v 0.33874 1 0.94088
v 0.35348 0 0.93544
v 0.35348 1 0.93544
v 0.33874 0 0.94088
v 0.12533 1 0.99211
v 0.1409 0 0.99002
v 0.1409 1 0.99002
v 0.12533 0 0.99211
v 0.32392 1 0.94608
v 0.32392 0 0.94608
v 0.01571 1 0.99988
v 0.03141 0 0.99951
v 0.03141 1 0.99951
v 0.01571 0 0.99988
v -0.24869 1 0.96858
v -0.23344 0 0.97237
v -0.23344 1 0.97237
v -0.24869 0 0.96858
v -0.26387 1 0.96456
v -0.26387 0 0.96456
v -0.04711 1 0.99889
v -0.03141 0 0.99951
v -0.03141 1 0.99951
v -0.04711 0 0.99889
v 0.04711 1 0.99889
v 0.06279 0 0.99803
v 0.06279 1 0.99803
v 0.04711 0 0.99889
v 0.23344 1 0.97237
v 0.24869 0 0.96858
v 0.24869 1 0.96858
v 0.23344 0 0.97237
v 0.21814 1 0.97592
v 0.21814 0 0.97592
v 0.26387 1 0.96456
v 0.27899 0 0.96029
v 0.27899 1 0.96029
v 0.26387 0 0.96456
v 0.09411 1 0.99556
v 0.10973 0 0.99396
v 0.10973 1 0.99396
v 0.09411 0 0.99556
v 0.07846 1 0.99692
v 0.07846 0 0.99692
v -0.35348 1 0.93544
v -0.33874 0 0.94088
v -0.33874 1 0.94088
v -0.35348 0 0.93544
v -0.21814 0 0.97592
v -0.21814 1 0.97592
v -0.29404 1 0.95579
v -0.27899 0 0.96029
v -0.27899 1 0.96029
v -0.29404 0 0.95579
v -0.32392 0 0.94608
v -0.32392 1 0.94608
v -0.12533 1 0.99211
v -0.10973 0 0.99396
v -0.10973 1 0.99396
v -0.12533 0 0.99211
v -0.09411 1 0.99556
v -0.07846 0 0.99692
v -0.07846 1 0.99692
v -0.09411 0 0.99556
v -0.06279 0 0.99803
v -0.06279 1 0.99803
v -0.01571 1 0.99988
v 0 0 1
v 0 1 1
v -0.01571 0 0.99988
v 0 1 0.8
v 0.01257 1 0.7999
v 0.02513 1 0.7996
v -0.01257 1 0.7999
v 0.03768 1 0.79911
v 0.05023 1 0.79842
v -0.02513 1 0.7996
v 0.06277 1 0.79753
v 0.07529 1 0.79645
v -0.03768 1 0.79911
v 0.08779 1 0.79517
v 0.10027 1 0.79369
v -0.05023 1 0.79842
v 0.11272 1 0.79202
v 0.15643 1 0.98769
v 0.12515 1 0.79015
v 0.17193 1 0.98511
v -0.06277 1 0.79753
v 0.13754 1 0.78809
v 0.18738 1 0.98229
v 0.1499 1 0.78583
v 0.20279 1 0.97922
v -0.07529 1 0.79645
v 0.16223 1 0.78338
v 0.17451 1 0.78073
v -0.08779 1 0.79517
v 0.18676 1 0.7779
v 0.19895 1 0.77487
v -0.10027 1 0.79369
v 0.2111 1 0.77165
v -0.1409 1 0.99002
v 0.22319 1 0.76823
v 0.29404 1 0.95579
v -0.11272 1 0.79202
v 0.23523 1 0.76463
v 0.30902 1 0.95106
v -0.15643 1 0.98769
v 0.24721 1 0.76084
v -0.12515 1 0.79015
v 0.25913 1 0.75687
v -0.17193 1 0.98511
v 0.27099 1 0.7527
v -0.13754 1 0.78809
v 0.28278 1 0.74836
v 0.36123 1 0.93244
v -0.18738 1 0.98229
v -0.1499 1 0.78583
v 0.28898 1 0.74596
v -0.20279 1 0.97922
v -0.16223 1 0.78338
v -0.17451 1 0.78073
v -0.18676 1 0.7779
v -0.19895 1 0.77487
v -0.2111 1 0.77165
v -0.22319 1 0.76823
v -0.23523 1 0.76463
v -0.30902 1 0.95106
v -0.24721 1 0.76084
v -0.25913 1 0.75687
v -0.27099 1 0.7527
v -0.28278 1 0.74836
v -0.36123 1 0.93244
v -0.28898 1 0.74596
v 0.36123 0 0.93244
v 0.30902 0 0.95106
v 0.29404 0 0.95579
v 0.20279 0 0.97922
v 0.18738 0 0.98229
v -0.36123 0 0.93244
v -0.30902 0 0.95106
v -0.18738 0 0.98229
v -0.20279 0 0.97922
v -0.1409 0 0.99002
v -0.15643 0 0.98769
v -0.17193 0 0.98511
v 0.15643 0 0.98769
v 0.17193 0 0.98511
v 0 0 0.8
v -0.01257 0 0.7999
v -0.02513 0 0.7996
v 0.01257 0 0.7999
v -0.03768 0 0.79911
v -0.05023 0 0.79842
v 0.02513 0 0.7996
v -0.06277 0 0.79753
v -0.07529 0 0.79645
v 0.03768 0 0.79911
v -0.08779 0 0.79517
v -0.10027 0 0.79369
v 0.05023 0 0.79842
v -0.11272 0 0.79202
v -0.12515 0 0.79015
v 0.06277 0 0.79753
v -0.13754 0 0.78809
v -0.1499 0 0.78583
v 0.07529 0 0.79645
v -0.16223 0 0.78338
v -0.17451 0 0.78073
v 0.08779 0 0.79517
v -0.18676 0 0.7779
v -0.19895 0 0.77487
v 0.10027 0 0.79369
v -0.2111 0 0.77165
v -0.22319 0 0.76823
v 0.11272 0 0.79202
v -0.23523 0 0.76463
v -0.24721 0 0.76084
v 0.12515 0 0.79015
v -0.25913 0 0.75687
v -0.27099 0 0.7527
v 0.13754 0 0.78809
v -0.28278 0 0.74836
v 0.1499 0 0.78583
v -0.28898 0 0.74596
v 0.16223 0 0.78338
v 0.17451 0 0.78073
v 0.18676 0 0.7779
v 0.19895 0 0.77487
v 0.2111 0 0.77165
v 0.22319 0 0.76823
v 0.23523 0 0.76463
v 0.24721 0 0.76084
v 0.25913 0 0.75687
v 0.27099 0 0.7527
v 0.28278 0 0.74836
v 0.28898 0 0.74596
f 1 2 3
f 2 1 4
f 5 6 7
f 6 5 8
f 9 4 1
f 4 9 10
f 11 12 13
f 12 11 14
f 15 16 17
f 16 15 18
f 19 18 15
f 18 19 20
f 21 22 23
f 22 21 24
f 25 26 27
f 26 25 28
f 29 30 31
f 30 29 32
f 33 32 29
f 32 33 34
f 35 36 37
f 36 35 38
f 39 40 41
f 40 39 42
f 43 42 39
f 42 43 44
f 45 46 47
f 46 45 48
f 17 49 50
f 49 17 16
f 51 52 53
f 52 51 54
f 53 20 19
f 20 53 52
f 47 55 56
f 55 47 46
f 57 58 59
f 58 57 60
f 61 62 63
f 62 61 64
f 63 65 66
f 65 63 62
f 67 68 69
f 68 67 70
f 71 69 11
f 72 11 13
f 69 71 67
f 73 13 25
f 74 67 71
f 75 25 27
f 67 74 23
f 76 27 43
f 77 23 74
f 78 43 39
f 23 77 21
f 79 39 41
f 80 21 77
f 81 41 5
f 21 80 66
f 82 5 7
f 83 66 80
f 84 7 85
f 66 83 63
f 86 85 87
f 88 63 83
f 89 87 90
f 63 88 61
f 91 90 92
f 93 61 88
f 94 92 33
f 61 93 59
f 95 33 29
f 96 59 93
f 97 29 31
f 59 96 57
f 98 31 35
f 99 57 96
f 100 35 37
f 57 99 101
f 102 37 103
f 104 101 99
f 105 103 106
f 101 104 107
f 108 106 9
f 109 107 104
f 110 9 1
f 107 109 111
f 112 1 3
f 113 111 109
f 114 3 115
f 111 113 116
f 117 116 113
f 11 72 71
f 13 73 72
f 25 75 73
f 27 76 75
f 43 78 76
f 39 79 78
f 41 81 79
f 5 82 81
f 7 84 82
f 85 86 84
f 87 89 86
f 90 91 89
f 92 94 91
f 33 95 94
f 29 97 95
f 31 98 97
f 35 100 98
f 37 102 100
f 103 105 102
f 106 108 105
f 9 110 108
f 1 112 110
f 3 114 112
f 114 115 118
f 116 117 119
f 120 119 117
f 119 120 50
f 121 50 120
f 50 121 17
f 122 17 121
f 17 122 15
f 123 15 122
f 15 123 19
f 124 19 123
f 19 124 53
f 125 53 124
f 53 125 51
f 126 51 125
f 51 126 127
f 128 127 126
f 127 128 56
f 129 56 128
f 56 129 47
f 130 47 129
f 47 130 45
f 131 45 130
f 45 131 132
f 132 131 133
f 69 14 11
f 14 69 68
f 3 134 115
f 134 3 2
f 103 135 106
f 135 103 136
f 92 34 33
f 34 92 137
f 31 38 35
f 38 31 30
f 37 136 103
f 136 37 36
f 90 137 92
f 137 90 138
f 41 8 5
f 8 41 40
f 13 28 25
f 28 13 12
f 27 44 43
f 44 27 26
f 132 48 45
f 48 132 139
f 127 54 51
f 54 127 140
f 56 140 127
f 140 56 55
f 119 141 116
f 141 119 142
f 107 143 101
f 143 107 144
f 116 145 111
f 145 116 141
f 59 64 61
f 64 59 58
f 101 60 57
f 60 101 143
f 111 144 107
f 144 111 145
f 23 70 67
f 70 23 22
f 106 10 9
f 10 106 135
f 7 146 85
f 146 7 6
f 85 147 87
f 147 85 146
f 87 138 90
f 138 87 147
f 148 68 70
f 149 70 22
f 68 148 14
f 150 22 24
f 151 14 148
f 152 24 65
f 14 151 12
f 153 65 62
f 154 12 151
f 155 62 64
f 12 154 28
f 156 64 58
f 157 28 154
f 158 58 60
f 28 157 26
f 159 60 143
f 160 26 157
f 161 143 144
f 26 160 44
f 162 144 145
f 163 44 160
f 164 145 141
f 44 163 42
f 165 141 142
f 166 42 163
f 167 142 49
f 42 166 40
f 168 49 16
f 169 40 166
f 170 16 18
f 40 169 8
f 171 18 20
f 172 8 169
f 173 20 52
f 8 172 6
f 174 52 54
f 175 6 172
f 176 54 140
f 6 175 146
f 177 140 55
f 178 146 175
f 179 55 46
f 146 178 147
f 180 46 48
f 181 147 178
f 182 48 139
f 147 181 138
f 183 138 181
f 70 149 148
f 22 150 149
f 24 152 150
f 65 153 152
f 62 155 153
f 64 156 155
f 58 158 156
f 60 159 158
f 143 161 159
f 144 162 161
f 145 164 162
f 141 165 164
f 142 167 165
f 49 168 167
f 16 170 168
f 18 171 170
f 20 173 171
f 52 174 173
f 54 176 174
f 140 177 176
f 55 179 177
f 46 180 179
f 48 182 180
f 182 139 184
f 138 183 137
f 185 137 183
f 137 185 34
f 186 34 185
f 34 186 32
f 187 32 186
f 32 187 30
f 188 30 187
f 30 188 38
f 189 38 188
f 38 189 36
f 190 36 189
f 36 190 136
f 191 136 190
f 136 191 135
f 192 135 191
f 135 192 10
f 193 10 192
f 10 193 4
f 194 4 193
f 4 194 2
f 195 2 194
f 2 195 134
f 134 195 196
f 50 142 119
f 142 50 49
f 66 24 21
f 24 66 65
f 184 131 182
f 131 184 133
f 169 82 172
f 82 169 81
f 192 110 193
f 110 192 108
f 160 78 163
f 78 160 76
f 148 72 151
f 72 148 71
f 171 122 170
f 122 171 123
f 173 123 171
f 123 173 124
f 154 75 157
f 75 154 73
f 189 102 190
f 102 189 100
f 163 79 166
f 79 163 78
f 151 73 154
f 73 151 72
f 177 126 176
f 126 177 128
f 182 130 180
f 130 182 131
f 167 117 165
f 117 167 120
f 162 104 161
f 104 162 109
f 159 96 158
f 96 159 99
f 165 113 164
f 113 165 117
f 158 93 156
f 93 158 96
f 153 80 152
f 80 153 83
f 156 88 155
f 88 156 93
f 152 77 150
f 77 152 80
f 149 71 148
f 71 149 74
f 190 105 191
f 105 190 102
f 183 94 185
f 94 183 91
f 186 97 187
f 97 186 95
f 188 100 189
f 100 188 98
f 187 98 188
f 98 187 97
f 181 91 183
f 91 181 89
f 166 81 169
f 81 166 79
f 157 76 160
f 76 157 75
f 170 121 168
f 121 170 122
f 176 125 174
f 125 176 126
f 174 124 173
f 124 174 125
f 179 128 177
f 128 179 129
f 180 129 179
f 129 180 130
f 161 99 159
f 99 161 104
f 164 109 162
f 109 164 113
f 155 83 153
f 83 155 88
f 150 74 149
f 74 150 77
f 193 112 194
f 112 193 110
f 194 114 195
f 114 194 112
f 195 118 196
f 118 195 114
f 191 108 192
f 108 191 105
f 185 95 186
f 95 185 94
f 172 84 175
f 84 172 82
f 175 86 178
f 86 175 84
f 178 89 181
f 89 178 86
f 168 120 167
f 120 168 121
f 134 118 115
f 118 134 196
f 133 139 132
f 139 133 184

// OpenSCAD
$fn = 400;

SEGMENTS = 8;
ANGLE = 360 / (SEGMENTS + 0.5);

rotate([90,0,0]) difference() {
    translate([0,0,-1]) cylinder(h=1,r=1);
    cylinder(h=3,r=0.8, center=true);
    rotate([0,0,-ANGLE/2]) translate([0,-5,-5]) cube(10);
    rotate([0,0,ANGLE/2]) mirror([1,0,0]) translate([0,-5,-5]) cube(10);
}
